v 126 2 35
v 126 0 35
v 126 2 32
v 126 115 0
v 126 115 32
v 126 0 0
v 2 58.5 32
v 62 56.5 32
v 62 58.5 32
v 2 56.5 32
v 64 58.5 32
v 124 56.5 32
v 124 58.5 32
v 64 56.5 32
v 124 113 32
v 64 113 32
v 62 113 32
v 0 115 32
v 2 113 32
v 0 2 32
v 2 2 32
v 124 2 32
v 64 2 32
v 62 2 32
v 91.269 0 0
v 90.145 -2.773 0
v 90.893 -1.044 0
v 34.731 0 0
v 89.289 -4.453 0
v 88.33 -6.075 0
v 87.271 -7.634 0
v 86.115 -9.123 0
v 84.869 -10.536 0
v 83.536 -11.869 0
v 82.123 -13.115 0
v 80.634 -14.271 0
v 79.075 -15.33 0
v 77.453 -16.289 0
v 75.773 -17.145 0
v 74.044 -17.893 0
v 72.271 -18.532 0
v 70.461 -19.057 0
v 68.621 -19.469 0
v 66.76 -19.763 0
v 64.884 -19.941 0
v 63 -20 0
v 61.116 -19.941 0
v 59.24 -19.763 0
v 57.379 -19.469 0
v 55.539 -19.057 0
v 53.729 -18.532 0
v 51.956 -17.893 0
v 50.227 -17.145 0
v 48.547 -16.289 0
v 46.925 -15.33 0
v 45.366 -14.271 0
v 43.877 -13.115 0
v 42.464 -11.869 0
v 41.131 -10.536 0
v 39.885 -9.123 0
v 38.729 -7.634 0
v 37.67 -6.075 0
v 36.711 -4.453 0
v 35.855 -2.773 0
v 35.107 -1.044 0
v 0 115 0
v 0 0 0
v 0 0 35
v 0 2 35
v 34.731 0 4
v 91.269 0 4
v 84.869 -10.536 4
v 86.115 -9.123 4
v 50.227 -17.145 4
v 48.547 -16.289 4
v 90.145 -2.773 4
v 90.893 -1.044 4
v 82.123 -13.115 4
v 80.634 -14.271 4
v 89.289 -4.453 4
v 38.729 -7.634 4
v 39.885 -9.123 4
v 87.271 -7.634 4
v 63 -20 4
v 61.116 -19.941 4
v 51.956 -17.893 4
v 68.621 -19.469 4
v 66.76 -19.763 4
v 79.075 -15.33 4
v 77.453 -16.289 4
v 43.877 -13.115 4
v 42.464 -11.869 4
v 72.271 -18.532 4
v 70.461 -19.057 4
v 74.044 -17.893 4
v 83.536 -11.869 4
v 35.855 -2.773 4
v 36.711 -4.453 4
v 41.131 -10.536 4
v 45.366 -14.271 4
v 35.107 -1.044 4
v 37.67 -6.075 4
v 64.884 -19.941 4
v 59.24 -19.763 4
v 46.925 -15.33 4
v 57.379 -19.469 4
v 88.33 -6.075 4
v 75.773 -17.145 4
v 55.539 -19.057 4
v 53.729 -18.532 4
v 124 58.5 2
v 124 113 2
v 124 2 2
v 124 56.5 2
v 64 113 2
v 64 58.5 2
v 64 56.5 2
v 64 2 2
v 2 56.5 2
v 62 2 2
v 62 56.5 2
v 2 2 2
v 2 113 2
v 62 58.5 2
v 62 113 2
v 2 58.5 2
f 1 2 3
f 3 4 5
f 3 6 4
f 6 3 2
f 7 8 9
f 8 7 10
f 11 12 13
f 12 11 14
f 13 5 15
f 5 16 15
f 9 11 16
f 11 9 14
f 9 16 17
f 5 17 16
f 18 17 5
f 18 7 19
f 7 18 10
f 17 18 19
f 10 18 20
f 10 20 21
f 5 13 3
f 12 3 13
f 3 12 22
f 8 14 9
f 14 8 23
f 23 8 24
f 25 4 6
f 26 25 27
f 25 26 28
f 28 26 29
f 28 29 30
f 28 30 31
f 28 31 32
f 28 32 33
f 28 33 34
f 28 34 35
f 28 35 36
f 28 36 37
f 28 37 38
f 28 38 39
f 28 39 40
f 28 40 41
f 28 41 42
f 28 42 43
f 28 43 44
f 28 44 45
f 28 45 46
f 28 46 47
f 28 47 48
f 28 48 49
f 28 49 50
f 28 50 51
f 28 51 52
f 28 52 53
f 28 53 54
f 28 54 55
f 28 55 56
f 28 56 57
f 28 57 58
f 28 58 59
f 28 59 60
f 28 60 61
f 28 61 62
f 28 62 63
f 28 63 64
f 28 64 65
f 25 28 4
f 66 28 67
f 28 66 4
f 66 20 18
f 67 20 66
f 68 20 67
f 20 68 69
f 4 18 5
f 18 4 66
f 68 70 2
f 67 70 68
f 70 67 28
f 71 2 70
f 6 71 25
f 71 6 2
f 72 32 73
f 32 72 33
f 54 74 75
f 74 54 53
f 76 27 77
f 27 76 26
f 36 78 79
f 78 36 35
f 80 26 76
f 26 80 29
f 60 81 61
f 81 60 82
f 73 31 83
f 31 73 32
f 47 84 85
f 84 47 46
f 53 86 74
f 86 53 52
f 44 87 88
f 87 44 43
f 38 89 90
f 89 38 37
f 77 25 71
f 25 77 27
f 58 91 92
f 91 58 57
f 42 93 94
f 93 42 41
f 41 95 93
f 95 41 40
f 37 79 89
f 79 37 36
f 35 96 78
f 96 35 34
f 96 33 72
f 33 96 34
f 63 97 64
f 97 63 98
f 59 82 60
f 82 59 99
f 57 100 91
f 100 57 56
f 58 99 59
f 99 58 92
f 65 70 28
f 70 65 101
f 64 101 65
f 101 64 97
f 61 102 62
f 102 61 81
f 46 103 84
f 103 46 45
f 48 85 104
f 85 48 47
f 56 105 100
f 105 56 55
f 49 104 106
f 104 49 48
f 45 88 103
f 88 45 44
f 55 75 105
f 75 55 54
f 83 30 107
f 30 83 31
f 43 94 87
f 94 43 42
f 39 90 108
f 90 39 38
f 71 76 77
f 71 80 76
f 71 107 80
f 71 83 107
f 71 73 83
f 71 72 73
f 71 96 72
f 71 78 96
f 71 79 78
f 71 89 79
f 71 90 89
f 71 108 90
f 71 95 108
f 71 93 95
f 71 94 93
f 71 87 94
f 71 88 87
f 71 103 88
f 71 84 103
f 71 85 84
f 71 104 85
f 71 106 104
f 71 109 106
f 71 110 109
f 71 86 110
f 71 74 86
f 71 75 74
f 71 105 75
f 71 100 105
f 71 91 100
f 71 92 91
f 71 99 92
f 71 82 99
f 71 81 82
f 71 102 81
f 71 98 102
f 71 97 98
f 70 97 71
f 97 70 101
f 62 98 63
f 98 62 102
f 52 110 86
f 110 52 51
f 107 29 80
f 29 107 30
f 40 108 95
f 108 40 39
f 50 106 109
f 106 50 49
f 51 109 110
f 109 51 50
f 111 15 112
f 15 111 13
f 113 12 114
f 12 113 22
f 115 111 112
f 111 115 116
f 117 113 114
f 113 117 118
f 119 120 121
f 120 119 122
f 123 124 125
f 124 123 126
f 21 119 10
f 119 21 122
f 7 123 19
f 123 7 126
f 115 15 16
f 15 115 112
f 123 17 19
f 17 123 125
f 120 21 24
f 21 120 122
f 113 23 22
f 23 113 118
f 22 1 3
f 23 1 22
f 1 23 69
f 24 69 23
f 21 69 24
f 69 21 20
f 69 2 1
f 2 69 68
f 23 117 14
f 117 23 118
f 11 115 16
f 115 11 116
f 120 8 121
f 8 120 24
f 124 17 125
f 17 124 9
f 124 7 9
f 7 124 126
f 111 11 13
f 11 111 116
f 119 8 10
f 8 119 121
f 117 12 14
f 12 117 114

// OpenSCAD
h1 = 32.0;
h2 = 35.0;
lg = 115.0;
wi = 126.0;
$fn = 100;

union() {
    difference(){
        union() {
            cube([wi, lg, h1], center = false);
            translate([wi/2, 10, 0]) {
                cylinder(h=4, r=30, center = false);
            }
        }
        translate([2,2,2]){
            cube([wi-4, lg-4, h1], center = false);
        }
    };
    cube([wi, 2, h2], center = false);
    translate([wi/2-1, 0, 0]){
        cube([2, lg, h1], center = false);
    }
    translate([0, lg/2-1, 0]) {
        cube([wi, 2, h1], center = false);
    }
};
